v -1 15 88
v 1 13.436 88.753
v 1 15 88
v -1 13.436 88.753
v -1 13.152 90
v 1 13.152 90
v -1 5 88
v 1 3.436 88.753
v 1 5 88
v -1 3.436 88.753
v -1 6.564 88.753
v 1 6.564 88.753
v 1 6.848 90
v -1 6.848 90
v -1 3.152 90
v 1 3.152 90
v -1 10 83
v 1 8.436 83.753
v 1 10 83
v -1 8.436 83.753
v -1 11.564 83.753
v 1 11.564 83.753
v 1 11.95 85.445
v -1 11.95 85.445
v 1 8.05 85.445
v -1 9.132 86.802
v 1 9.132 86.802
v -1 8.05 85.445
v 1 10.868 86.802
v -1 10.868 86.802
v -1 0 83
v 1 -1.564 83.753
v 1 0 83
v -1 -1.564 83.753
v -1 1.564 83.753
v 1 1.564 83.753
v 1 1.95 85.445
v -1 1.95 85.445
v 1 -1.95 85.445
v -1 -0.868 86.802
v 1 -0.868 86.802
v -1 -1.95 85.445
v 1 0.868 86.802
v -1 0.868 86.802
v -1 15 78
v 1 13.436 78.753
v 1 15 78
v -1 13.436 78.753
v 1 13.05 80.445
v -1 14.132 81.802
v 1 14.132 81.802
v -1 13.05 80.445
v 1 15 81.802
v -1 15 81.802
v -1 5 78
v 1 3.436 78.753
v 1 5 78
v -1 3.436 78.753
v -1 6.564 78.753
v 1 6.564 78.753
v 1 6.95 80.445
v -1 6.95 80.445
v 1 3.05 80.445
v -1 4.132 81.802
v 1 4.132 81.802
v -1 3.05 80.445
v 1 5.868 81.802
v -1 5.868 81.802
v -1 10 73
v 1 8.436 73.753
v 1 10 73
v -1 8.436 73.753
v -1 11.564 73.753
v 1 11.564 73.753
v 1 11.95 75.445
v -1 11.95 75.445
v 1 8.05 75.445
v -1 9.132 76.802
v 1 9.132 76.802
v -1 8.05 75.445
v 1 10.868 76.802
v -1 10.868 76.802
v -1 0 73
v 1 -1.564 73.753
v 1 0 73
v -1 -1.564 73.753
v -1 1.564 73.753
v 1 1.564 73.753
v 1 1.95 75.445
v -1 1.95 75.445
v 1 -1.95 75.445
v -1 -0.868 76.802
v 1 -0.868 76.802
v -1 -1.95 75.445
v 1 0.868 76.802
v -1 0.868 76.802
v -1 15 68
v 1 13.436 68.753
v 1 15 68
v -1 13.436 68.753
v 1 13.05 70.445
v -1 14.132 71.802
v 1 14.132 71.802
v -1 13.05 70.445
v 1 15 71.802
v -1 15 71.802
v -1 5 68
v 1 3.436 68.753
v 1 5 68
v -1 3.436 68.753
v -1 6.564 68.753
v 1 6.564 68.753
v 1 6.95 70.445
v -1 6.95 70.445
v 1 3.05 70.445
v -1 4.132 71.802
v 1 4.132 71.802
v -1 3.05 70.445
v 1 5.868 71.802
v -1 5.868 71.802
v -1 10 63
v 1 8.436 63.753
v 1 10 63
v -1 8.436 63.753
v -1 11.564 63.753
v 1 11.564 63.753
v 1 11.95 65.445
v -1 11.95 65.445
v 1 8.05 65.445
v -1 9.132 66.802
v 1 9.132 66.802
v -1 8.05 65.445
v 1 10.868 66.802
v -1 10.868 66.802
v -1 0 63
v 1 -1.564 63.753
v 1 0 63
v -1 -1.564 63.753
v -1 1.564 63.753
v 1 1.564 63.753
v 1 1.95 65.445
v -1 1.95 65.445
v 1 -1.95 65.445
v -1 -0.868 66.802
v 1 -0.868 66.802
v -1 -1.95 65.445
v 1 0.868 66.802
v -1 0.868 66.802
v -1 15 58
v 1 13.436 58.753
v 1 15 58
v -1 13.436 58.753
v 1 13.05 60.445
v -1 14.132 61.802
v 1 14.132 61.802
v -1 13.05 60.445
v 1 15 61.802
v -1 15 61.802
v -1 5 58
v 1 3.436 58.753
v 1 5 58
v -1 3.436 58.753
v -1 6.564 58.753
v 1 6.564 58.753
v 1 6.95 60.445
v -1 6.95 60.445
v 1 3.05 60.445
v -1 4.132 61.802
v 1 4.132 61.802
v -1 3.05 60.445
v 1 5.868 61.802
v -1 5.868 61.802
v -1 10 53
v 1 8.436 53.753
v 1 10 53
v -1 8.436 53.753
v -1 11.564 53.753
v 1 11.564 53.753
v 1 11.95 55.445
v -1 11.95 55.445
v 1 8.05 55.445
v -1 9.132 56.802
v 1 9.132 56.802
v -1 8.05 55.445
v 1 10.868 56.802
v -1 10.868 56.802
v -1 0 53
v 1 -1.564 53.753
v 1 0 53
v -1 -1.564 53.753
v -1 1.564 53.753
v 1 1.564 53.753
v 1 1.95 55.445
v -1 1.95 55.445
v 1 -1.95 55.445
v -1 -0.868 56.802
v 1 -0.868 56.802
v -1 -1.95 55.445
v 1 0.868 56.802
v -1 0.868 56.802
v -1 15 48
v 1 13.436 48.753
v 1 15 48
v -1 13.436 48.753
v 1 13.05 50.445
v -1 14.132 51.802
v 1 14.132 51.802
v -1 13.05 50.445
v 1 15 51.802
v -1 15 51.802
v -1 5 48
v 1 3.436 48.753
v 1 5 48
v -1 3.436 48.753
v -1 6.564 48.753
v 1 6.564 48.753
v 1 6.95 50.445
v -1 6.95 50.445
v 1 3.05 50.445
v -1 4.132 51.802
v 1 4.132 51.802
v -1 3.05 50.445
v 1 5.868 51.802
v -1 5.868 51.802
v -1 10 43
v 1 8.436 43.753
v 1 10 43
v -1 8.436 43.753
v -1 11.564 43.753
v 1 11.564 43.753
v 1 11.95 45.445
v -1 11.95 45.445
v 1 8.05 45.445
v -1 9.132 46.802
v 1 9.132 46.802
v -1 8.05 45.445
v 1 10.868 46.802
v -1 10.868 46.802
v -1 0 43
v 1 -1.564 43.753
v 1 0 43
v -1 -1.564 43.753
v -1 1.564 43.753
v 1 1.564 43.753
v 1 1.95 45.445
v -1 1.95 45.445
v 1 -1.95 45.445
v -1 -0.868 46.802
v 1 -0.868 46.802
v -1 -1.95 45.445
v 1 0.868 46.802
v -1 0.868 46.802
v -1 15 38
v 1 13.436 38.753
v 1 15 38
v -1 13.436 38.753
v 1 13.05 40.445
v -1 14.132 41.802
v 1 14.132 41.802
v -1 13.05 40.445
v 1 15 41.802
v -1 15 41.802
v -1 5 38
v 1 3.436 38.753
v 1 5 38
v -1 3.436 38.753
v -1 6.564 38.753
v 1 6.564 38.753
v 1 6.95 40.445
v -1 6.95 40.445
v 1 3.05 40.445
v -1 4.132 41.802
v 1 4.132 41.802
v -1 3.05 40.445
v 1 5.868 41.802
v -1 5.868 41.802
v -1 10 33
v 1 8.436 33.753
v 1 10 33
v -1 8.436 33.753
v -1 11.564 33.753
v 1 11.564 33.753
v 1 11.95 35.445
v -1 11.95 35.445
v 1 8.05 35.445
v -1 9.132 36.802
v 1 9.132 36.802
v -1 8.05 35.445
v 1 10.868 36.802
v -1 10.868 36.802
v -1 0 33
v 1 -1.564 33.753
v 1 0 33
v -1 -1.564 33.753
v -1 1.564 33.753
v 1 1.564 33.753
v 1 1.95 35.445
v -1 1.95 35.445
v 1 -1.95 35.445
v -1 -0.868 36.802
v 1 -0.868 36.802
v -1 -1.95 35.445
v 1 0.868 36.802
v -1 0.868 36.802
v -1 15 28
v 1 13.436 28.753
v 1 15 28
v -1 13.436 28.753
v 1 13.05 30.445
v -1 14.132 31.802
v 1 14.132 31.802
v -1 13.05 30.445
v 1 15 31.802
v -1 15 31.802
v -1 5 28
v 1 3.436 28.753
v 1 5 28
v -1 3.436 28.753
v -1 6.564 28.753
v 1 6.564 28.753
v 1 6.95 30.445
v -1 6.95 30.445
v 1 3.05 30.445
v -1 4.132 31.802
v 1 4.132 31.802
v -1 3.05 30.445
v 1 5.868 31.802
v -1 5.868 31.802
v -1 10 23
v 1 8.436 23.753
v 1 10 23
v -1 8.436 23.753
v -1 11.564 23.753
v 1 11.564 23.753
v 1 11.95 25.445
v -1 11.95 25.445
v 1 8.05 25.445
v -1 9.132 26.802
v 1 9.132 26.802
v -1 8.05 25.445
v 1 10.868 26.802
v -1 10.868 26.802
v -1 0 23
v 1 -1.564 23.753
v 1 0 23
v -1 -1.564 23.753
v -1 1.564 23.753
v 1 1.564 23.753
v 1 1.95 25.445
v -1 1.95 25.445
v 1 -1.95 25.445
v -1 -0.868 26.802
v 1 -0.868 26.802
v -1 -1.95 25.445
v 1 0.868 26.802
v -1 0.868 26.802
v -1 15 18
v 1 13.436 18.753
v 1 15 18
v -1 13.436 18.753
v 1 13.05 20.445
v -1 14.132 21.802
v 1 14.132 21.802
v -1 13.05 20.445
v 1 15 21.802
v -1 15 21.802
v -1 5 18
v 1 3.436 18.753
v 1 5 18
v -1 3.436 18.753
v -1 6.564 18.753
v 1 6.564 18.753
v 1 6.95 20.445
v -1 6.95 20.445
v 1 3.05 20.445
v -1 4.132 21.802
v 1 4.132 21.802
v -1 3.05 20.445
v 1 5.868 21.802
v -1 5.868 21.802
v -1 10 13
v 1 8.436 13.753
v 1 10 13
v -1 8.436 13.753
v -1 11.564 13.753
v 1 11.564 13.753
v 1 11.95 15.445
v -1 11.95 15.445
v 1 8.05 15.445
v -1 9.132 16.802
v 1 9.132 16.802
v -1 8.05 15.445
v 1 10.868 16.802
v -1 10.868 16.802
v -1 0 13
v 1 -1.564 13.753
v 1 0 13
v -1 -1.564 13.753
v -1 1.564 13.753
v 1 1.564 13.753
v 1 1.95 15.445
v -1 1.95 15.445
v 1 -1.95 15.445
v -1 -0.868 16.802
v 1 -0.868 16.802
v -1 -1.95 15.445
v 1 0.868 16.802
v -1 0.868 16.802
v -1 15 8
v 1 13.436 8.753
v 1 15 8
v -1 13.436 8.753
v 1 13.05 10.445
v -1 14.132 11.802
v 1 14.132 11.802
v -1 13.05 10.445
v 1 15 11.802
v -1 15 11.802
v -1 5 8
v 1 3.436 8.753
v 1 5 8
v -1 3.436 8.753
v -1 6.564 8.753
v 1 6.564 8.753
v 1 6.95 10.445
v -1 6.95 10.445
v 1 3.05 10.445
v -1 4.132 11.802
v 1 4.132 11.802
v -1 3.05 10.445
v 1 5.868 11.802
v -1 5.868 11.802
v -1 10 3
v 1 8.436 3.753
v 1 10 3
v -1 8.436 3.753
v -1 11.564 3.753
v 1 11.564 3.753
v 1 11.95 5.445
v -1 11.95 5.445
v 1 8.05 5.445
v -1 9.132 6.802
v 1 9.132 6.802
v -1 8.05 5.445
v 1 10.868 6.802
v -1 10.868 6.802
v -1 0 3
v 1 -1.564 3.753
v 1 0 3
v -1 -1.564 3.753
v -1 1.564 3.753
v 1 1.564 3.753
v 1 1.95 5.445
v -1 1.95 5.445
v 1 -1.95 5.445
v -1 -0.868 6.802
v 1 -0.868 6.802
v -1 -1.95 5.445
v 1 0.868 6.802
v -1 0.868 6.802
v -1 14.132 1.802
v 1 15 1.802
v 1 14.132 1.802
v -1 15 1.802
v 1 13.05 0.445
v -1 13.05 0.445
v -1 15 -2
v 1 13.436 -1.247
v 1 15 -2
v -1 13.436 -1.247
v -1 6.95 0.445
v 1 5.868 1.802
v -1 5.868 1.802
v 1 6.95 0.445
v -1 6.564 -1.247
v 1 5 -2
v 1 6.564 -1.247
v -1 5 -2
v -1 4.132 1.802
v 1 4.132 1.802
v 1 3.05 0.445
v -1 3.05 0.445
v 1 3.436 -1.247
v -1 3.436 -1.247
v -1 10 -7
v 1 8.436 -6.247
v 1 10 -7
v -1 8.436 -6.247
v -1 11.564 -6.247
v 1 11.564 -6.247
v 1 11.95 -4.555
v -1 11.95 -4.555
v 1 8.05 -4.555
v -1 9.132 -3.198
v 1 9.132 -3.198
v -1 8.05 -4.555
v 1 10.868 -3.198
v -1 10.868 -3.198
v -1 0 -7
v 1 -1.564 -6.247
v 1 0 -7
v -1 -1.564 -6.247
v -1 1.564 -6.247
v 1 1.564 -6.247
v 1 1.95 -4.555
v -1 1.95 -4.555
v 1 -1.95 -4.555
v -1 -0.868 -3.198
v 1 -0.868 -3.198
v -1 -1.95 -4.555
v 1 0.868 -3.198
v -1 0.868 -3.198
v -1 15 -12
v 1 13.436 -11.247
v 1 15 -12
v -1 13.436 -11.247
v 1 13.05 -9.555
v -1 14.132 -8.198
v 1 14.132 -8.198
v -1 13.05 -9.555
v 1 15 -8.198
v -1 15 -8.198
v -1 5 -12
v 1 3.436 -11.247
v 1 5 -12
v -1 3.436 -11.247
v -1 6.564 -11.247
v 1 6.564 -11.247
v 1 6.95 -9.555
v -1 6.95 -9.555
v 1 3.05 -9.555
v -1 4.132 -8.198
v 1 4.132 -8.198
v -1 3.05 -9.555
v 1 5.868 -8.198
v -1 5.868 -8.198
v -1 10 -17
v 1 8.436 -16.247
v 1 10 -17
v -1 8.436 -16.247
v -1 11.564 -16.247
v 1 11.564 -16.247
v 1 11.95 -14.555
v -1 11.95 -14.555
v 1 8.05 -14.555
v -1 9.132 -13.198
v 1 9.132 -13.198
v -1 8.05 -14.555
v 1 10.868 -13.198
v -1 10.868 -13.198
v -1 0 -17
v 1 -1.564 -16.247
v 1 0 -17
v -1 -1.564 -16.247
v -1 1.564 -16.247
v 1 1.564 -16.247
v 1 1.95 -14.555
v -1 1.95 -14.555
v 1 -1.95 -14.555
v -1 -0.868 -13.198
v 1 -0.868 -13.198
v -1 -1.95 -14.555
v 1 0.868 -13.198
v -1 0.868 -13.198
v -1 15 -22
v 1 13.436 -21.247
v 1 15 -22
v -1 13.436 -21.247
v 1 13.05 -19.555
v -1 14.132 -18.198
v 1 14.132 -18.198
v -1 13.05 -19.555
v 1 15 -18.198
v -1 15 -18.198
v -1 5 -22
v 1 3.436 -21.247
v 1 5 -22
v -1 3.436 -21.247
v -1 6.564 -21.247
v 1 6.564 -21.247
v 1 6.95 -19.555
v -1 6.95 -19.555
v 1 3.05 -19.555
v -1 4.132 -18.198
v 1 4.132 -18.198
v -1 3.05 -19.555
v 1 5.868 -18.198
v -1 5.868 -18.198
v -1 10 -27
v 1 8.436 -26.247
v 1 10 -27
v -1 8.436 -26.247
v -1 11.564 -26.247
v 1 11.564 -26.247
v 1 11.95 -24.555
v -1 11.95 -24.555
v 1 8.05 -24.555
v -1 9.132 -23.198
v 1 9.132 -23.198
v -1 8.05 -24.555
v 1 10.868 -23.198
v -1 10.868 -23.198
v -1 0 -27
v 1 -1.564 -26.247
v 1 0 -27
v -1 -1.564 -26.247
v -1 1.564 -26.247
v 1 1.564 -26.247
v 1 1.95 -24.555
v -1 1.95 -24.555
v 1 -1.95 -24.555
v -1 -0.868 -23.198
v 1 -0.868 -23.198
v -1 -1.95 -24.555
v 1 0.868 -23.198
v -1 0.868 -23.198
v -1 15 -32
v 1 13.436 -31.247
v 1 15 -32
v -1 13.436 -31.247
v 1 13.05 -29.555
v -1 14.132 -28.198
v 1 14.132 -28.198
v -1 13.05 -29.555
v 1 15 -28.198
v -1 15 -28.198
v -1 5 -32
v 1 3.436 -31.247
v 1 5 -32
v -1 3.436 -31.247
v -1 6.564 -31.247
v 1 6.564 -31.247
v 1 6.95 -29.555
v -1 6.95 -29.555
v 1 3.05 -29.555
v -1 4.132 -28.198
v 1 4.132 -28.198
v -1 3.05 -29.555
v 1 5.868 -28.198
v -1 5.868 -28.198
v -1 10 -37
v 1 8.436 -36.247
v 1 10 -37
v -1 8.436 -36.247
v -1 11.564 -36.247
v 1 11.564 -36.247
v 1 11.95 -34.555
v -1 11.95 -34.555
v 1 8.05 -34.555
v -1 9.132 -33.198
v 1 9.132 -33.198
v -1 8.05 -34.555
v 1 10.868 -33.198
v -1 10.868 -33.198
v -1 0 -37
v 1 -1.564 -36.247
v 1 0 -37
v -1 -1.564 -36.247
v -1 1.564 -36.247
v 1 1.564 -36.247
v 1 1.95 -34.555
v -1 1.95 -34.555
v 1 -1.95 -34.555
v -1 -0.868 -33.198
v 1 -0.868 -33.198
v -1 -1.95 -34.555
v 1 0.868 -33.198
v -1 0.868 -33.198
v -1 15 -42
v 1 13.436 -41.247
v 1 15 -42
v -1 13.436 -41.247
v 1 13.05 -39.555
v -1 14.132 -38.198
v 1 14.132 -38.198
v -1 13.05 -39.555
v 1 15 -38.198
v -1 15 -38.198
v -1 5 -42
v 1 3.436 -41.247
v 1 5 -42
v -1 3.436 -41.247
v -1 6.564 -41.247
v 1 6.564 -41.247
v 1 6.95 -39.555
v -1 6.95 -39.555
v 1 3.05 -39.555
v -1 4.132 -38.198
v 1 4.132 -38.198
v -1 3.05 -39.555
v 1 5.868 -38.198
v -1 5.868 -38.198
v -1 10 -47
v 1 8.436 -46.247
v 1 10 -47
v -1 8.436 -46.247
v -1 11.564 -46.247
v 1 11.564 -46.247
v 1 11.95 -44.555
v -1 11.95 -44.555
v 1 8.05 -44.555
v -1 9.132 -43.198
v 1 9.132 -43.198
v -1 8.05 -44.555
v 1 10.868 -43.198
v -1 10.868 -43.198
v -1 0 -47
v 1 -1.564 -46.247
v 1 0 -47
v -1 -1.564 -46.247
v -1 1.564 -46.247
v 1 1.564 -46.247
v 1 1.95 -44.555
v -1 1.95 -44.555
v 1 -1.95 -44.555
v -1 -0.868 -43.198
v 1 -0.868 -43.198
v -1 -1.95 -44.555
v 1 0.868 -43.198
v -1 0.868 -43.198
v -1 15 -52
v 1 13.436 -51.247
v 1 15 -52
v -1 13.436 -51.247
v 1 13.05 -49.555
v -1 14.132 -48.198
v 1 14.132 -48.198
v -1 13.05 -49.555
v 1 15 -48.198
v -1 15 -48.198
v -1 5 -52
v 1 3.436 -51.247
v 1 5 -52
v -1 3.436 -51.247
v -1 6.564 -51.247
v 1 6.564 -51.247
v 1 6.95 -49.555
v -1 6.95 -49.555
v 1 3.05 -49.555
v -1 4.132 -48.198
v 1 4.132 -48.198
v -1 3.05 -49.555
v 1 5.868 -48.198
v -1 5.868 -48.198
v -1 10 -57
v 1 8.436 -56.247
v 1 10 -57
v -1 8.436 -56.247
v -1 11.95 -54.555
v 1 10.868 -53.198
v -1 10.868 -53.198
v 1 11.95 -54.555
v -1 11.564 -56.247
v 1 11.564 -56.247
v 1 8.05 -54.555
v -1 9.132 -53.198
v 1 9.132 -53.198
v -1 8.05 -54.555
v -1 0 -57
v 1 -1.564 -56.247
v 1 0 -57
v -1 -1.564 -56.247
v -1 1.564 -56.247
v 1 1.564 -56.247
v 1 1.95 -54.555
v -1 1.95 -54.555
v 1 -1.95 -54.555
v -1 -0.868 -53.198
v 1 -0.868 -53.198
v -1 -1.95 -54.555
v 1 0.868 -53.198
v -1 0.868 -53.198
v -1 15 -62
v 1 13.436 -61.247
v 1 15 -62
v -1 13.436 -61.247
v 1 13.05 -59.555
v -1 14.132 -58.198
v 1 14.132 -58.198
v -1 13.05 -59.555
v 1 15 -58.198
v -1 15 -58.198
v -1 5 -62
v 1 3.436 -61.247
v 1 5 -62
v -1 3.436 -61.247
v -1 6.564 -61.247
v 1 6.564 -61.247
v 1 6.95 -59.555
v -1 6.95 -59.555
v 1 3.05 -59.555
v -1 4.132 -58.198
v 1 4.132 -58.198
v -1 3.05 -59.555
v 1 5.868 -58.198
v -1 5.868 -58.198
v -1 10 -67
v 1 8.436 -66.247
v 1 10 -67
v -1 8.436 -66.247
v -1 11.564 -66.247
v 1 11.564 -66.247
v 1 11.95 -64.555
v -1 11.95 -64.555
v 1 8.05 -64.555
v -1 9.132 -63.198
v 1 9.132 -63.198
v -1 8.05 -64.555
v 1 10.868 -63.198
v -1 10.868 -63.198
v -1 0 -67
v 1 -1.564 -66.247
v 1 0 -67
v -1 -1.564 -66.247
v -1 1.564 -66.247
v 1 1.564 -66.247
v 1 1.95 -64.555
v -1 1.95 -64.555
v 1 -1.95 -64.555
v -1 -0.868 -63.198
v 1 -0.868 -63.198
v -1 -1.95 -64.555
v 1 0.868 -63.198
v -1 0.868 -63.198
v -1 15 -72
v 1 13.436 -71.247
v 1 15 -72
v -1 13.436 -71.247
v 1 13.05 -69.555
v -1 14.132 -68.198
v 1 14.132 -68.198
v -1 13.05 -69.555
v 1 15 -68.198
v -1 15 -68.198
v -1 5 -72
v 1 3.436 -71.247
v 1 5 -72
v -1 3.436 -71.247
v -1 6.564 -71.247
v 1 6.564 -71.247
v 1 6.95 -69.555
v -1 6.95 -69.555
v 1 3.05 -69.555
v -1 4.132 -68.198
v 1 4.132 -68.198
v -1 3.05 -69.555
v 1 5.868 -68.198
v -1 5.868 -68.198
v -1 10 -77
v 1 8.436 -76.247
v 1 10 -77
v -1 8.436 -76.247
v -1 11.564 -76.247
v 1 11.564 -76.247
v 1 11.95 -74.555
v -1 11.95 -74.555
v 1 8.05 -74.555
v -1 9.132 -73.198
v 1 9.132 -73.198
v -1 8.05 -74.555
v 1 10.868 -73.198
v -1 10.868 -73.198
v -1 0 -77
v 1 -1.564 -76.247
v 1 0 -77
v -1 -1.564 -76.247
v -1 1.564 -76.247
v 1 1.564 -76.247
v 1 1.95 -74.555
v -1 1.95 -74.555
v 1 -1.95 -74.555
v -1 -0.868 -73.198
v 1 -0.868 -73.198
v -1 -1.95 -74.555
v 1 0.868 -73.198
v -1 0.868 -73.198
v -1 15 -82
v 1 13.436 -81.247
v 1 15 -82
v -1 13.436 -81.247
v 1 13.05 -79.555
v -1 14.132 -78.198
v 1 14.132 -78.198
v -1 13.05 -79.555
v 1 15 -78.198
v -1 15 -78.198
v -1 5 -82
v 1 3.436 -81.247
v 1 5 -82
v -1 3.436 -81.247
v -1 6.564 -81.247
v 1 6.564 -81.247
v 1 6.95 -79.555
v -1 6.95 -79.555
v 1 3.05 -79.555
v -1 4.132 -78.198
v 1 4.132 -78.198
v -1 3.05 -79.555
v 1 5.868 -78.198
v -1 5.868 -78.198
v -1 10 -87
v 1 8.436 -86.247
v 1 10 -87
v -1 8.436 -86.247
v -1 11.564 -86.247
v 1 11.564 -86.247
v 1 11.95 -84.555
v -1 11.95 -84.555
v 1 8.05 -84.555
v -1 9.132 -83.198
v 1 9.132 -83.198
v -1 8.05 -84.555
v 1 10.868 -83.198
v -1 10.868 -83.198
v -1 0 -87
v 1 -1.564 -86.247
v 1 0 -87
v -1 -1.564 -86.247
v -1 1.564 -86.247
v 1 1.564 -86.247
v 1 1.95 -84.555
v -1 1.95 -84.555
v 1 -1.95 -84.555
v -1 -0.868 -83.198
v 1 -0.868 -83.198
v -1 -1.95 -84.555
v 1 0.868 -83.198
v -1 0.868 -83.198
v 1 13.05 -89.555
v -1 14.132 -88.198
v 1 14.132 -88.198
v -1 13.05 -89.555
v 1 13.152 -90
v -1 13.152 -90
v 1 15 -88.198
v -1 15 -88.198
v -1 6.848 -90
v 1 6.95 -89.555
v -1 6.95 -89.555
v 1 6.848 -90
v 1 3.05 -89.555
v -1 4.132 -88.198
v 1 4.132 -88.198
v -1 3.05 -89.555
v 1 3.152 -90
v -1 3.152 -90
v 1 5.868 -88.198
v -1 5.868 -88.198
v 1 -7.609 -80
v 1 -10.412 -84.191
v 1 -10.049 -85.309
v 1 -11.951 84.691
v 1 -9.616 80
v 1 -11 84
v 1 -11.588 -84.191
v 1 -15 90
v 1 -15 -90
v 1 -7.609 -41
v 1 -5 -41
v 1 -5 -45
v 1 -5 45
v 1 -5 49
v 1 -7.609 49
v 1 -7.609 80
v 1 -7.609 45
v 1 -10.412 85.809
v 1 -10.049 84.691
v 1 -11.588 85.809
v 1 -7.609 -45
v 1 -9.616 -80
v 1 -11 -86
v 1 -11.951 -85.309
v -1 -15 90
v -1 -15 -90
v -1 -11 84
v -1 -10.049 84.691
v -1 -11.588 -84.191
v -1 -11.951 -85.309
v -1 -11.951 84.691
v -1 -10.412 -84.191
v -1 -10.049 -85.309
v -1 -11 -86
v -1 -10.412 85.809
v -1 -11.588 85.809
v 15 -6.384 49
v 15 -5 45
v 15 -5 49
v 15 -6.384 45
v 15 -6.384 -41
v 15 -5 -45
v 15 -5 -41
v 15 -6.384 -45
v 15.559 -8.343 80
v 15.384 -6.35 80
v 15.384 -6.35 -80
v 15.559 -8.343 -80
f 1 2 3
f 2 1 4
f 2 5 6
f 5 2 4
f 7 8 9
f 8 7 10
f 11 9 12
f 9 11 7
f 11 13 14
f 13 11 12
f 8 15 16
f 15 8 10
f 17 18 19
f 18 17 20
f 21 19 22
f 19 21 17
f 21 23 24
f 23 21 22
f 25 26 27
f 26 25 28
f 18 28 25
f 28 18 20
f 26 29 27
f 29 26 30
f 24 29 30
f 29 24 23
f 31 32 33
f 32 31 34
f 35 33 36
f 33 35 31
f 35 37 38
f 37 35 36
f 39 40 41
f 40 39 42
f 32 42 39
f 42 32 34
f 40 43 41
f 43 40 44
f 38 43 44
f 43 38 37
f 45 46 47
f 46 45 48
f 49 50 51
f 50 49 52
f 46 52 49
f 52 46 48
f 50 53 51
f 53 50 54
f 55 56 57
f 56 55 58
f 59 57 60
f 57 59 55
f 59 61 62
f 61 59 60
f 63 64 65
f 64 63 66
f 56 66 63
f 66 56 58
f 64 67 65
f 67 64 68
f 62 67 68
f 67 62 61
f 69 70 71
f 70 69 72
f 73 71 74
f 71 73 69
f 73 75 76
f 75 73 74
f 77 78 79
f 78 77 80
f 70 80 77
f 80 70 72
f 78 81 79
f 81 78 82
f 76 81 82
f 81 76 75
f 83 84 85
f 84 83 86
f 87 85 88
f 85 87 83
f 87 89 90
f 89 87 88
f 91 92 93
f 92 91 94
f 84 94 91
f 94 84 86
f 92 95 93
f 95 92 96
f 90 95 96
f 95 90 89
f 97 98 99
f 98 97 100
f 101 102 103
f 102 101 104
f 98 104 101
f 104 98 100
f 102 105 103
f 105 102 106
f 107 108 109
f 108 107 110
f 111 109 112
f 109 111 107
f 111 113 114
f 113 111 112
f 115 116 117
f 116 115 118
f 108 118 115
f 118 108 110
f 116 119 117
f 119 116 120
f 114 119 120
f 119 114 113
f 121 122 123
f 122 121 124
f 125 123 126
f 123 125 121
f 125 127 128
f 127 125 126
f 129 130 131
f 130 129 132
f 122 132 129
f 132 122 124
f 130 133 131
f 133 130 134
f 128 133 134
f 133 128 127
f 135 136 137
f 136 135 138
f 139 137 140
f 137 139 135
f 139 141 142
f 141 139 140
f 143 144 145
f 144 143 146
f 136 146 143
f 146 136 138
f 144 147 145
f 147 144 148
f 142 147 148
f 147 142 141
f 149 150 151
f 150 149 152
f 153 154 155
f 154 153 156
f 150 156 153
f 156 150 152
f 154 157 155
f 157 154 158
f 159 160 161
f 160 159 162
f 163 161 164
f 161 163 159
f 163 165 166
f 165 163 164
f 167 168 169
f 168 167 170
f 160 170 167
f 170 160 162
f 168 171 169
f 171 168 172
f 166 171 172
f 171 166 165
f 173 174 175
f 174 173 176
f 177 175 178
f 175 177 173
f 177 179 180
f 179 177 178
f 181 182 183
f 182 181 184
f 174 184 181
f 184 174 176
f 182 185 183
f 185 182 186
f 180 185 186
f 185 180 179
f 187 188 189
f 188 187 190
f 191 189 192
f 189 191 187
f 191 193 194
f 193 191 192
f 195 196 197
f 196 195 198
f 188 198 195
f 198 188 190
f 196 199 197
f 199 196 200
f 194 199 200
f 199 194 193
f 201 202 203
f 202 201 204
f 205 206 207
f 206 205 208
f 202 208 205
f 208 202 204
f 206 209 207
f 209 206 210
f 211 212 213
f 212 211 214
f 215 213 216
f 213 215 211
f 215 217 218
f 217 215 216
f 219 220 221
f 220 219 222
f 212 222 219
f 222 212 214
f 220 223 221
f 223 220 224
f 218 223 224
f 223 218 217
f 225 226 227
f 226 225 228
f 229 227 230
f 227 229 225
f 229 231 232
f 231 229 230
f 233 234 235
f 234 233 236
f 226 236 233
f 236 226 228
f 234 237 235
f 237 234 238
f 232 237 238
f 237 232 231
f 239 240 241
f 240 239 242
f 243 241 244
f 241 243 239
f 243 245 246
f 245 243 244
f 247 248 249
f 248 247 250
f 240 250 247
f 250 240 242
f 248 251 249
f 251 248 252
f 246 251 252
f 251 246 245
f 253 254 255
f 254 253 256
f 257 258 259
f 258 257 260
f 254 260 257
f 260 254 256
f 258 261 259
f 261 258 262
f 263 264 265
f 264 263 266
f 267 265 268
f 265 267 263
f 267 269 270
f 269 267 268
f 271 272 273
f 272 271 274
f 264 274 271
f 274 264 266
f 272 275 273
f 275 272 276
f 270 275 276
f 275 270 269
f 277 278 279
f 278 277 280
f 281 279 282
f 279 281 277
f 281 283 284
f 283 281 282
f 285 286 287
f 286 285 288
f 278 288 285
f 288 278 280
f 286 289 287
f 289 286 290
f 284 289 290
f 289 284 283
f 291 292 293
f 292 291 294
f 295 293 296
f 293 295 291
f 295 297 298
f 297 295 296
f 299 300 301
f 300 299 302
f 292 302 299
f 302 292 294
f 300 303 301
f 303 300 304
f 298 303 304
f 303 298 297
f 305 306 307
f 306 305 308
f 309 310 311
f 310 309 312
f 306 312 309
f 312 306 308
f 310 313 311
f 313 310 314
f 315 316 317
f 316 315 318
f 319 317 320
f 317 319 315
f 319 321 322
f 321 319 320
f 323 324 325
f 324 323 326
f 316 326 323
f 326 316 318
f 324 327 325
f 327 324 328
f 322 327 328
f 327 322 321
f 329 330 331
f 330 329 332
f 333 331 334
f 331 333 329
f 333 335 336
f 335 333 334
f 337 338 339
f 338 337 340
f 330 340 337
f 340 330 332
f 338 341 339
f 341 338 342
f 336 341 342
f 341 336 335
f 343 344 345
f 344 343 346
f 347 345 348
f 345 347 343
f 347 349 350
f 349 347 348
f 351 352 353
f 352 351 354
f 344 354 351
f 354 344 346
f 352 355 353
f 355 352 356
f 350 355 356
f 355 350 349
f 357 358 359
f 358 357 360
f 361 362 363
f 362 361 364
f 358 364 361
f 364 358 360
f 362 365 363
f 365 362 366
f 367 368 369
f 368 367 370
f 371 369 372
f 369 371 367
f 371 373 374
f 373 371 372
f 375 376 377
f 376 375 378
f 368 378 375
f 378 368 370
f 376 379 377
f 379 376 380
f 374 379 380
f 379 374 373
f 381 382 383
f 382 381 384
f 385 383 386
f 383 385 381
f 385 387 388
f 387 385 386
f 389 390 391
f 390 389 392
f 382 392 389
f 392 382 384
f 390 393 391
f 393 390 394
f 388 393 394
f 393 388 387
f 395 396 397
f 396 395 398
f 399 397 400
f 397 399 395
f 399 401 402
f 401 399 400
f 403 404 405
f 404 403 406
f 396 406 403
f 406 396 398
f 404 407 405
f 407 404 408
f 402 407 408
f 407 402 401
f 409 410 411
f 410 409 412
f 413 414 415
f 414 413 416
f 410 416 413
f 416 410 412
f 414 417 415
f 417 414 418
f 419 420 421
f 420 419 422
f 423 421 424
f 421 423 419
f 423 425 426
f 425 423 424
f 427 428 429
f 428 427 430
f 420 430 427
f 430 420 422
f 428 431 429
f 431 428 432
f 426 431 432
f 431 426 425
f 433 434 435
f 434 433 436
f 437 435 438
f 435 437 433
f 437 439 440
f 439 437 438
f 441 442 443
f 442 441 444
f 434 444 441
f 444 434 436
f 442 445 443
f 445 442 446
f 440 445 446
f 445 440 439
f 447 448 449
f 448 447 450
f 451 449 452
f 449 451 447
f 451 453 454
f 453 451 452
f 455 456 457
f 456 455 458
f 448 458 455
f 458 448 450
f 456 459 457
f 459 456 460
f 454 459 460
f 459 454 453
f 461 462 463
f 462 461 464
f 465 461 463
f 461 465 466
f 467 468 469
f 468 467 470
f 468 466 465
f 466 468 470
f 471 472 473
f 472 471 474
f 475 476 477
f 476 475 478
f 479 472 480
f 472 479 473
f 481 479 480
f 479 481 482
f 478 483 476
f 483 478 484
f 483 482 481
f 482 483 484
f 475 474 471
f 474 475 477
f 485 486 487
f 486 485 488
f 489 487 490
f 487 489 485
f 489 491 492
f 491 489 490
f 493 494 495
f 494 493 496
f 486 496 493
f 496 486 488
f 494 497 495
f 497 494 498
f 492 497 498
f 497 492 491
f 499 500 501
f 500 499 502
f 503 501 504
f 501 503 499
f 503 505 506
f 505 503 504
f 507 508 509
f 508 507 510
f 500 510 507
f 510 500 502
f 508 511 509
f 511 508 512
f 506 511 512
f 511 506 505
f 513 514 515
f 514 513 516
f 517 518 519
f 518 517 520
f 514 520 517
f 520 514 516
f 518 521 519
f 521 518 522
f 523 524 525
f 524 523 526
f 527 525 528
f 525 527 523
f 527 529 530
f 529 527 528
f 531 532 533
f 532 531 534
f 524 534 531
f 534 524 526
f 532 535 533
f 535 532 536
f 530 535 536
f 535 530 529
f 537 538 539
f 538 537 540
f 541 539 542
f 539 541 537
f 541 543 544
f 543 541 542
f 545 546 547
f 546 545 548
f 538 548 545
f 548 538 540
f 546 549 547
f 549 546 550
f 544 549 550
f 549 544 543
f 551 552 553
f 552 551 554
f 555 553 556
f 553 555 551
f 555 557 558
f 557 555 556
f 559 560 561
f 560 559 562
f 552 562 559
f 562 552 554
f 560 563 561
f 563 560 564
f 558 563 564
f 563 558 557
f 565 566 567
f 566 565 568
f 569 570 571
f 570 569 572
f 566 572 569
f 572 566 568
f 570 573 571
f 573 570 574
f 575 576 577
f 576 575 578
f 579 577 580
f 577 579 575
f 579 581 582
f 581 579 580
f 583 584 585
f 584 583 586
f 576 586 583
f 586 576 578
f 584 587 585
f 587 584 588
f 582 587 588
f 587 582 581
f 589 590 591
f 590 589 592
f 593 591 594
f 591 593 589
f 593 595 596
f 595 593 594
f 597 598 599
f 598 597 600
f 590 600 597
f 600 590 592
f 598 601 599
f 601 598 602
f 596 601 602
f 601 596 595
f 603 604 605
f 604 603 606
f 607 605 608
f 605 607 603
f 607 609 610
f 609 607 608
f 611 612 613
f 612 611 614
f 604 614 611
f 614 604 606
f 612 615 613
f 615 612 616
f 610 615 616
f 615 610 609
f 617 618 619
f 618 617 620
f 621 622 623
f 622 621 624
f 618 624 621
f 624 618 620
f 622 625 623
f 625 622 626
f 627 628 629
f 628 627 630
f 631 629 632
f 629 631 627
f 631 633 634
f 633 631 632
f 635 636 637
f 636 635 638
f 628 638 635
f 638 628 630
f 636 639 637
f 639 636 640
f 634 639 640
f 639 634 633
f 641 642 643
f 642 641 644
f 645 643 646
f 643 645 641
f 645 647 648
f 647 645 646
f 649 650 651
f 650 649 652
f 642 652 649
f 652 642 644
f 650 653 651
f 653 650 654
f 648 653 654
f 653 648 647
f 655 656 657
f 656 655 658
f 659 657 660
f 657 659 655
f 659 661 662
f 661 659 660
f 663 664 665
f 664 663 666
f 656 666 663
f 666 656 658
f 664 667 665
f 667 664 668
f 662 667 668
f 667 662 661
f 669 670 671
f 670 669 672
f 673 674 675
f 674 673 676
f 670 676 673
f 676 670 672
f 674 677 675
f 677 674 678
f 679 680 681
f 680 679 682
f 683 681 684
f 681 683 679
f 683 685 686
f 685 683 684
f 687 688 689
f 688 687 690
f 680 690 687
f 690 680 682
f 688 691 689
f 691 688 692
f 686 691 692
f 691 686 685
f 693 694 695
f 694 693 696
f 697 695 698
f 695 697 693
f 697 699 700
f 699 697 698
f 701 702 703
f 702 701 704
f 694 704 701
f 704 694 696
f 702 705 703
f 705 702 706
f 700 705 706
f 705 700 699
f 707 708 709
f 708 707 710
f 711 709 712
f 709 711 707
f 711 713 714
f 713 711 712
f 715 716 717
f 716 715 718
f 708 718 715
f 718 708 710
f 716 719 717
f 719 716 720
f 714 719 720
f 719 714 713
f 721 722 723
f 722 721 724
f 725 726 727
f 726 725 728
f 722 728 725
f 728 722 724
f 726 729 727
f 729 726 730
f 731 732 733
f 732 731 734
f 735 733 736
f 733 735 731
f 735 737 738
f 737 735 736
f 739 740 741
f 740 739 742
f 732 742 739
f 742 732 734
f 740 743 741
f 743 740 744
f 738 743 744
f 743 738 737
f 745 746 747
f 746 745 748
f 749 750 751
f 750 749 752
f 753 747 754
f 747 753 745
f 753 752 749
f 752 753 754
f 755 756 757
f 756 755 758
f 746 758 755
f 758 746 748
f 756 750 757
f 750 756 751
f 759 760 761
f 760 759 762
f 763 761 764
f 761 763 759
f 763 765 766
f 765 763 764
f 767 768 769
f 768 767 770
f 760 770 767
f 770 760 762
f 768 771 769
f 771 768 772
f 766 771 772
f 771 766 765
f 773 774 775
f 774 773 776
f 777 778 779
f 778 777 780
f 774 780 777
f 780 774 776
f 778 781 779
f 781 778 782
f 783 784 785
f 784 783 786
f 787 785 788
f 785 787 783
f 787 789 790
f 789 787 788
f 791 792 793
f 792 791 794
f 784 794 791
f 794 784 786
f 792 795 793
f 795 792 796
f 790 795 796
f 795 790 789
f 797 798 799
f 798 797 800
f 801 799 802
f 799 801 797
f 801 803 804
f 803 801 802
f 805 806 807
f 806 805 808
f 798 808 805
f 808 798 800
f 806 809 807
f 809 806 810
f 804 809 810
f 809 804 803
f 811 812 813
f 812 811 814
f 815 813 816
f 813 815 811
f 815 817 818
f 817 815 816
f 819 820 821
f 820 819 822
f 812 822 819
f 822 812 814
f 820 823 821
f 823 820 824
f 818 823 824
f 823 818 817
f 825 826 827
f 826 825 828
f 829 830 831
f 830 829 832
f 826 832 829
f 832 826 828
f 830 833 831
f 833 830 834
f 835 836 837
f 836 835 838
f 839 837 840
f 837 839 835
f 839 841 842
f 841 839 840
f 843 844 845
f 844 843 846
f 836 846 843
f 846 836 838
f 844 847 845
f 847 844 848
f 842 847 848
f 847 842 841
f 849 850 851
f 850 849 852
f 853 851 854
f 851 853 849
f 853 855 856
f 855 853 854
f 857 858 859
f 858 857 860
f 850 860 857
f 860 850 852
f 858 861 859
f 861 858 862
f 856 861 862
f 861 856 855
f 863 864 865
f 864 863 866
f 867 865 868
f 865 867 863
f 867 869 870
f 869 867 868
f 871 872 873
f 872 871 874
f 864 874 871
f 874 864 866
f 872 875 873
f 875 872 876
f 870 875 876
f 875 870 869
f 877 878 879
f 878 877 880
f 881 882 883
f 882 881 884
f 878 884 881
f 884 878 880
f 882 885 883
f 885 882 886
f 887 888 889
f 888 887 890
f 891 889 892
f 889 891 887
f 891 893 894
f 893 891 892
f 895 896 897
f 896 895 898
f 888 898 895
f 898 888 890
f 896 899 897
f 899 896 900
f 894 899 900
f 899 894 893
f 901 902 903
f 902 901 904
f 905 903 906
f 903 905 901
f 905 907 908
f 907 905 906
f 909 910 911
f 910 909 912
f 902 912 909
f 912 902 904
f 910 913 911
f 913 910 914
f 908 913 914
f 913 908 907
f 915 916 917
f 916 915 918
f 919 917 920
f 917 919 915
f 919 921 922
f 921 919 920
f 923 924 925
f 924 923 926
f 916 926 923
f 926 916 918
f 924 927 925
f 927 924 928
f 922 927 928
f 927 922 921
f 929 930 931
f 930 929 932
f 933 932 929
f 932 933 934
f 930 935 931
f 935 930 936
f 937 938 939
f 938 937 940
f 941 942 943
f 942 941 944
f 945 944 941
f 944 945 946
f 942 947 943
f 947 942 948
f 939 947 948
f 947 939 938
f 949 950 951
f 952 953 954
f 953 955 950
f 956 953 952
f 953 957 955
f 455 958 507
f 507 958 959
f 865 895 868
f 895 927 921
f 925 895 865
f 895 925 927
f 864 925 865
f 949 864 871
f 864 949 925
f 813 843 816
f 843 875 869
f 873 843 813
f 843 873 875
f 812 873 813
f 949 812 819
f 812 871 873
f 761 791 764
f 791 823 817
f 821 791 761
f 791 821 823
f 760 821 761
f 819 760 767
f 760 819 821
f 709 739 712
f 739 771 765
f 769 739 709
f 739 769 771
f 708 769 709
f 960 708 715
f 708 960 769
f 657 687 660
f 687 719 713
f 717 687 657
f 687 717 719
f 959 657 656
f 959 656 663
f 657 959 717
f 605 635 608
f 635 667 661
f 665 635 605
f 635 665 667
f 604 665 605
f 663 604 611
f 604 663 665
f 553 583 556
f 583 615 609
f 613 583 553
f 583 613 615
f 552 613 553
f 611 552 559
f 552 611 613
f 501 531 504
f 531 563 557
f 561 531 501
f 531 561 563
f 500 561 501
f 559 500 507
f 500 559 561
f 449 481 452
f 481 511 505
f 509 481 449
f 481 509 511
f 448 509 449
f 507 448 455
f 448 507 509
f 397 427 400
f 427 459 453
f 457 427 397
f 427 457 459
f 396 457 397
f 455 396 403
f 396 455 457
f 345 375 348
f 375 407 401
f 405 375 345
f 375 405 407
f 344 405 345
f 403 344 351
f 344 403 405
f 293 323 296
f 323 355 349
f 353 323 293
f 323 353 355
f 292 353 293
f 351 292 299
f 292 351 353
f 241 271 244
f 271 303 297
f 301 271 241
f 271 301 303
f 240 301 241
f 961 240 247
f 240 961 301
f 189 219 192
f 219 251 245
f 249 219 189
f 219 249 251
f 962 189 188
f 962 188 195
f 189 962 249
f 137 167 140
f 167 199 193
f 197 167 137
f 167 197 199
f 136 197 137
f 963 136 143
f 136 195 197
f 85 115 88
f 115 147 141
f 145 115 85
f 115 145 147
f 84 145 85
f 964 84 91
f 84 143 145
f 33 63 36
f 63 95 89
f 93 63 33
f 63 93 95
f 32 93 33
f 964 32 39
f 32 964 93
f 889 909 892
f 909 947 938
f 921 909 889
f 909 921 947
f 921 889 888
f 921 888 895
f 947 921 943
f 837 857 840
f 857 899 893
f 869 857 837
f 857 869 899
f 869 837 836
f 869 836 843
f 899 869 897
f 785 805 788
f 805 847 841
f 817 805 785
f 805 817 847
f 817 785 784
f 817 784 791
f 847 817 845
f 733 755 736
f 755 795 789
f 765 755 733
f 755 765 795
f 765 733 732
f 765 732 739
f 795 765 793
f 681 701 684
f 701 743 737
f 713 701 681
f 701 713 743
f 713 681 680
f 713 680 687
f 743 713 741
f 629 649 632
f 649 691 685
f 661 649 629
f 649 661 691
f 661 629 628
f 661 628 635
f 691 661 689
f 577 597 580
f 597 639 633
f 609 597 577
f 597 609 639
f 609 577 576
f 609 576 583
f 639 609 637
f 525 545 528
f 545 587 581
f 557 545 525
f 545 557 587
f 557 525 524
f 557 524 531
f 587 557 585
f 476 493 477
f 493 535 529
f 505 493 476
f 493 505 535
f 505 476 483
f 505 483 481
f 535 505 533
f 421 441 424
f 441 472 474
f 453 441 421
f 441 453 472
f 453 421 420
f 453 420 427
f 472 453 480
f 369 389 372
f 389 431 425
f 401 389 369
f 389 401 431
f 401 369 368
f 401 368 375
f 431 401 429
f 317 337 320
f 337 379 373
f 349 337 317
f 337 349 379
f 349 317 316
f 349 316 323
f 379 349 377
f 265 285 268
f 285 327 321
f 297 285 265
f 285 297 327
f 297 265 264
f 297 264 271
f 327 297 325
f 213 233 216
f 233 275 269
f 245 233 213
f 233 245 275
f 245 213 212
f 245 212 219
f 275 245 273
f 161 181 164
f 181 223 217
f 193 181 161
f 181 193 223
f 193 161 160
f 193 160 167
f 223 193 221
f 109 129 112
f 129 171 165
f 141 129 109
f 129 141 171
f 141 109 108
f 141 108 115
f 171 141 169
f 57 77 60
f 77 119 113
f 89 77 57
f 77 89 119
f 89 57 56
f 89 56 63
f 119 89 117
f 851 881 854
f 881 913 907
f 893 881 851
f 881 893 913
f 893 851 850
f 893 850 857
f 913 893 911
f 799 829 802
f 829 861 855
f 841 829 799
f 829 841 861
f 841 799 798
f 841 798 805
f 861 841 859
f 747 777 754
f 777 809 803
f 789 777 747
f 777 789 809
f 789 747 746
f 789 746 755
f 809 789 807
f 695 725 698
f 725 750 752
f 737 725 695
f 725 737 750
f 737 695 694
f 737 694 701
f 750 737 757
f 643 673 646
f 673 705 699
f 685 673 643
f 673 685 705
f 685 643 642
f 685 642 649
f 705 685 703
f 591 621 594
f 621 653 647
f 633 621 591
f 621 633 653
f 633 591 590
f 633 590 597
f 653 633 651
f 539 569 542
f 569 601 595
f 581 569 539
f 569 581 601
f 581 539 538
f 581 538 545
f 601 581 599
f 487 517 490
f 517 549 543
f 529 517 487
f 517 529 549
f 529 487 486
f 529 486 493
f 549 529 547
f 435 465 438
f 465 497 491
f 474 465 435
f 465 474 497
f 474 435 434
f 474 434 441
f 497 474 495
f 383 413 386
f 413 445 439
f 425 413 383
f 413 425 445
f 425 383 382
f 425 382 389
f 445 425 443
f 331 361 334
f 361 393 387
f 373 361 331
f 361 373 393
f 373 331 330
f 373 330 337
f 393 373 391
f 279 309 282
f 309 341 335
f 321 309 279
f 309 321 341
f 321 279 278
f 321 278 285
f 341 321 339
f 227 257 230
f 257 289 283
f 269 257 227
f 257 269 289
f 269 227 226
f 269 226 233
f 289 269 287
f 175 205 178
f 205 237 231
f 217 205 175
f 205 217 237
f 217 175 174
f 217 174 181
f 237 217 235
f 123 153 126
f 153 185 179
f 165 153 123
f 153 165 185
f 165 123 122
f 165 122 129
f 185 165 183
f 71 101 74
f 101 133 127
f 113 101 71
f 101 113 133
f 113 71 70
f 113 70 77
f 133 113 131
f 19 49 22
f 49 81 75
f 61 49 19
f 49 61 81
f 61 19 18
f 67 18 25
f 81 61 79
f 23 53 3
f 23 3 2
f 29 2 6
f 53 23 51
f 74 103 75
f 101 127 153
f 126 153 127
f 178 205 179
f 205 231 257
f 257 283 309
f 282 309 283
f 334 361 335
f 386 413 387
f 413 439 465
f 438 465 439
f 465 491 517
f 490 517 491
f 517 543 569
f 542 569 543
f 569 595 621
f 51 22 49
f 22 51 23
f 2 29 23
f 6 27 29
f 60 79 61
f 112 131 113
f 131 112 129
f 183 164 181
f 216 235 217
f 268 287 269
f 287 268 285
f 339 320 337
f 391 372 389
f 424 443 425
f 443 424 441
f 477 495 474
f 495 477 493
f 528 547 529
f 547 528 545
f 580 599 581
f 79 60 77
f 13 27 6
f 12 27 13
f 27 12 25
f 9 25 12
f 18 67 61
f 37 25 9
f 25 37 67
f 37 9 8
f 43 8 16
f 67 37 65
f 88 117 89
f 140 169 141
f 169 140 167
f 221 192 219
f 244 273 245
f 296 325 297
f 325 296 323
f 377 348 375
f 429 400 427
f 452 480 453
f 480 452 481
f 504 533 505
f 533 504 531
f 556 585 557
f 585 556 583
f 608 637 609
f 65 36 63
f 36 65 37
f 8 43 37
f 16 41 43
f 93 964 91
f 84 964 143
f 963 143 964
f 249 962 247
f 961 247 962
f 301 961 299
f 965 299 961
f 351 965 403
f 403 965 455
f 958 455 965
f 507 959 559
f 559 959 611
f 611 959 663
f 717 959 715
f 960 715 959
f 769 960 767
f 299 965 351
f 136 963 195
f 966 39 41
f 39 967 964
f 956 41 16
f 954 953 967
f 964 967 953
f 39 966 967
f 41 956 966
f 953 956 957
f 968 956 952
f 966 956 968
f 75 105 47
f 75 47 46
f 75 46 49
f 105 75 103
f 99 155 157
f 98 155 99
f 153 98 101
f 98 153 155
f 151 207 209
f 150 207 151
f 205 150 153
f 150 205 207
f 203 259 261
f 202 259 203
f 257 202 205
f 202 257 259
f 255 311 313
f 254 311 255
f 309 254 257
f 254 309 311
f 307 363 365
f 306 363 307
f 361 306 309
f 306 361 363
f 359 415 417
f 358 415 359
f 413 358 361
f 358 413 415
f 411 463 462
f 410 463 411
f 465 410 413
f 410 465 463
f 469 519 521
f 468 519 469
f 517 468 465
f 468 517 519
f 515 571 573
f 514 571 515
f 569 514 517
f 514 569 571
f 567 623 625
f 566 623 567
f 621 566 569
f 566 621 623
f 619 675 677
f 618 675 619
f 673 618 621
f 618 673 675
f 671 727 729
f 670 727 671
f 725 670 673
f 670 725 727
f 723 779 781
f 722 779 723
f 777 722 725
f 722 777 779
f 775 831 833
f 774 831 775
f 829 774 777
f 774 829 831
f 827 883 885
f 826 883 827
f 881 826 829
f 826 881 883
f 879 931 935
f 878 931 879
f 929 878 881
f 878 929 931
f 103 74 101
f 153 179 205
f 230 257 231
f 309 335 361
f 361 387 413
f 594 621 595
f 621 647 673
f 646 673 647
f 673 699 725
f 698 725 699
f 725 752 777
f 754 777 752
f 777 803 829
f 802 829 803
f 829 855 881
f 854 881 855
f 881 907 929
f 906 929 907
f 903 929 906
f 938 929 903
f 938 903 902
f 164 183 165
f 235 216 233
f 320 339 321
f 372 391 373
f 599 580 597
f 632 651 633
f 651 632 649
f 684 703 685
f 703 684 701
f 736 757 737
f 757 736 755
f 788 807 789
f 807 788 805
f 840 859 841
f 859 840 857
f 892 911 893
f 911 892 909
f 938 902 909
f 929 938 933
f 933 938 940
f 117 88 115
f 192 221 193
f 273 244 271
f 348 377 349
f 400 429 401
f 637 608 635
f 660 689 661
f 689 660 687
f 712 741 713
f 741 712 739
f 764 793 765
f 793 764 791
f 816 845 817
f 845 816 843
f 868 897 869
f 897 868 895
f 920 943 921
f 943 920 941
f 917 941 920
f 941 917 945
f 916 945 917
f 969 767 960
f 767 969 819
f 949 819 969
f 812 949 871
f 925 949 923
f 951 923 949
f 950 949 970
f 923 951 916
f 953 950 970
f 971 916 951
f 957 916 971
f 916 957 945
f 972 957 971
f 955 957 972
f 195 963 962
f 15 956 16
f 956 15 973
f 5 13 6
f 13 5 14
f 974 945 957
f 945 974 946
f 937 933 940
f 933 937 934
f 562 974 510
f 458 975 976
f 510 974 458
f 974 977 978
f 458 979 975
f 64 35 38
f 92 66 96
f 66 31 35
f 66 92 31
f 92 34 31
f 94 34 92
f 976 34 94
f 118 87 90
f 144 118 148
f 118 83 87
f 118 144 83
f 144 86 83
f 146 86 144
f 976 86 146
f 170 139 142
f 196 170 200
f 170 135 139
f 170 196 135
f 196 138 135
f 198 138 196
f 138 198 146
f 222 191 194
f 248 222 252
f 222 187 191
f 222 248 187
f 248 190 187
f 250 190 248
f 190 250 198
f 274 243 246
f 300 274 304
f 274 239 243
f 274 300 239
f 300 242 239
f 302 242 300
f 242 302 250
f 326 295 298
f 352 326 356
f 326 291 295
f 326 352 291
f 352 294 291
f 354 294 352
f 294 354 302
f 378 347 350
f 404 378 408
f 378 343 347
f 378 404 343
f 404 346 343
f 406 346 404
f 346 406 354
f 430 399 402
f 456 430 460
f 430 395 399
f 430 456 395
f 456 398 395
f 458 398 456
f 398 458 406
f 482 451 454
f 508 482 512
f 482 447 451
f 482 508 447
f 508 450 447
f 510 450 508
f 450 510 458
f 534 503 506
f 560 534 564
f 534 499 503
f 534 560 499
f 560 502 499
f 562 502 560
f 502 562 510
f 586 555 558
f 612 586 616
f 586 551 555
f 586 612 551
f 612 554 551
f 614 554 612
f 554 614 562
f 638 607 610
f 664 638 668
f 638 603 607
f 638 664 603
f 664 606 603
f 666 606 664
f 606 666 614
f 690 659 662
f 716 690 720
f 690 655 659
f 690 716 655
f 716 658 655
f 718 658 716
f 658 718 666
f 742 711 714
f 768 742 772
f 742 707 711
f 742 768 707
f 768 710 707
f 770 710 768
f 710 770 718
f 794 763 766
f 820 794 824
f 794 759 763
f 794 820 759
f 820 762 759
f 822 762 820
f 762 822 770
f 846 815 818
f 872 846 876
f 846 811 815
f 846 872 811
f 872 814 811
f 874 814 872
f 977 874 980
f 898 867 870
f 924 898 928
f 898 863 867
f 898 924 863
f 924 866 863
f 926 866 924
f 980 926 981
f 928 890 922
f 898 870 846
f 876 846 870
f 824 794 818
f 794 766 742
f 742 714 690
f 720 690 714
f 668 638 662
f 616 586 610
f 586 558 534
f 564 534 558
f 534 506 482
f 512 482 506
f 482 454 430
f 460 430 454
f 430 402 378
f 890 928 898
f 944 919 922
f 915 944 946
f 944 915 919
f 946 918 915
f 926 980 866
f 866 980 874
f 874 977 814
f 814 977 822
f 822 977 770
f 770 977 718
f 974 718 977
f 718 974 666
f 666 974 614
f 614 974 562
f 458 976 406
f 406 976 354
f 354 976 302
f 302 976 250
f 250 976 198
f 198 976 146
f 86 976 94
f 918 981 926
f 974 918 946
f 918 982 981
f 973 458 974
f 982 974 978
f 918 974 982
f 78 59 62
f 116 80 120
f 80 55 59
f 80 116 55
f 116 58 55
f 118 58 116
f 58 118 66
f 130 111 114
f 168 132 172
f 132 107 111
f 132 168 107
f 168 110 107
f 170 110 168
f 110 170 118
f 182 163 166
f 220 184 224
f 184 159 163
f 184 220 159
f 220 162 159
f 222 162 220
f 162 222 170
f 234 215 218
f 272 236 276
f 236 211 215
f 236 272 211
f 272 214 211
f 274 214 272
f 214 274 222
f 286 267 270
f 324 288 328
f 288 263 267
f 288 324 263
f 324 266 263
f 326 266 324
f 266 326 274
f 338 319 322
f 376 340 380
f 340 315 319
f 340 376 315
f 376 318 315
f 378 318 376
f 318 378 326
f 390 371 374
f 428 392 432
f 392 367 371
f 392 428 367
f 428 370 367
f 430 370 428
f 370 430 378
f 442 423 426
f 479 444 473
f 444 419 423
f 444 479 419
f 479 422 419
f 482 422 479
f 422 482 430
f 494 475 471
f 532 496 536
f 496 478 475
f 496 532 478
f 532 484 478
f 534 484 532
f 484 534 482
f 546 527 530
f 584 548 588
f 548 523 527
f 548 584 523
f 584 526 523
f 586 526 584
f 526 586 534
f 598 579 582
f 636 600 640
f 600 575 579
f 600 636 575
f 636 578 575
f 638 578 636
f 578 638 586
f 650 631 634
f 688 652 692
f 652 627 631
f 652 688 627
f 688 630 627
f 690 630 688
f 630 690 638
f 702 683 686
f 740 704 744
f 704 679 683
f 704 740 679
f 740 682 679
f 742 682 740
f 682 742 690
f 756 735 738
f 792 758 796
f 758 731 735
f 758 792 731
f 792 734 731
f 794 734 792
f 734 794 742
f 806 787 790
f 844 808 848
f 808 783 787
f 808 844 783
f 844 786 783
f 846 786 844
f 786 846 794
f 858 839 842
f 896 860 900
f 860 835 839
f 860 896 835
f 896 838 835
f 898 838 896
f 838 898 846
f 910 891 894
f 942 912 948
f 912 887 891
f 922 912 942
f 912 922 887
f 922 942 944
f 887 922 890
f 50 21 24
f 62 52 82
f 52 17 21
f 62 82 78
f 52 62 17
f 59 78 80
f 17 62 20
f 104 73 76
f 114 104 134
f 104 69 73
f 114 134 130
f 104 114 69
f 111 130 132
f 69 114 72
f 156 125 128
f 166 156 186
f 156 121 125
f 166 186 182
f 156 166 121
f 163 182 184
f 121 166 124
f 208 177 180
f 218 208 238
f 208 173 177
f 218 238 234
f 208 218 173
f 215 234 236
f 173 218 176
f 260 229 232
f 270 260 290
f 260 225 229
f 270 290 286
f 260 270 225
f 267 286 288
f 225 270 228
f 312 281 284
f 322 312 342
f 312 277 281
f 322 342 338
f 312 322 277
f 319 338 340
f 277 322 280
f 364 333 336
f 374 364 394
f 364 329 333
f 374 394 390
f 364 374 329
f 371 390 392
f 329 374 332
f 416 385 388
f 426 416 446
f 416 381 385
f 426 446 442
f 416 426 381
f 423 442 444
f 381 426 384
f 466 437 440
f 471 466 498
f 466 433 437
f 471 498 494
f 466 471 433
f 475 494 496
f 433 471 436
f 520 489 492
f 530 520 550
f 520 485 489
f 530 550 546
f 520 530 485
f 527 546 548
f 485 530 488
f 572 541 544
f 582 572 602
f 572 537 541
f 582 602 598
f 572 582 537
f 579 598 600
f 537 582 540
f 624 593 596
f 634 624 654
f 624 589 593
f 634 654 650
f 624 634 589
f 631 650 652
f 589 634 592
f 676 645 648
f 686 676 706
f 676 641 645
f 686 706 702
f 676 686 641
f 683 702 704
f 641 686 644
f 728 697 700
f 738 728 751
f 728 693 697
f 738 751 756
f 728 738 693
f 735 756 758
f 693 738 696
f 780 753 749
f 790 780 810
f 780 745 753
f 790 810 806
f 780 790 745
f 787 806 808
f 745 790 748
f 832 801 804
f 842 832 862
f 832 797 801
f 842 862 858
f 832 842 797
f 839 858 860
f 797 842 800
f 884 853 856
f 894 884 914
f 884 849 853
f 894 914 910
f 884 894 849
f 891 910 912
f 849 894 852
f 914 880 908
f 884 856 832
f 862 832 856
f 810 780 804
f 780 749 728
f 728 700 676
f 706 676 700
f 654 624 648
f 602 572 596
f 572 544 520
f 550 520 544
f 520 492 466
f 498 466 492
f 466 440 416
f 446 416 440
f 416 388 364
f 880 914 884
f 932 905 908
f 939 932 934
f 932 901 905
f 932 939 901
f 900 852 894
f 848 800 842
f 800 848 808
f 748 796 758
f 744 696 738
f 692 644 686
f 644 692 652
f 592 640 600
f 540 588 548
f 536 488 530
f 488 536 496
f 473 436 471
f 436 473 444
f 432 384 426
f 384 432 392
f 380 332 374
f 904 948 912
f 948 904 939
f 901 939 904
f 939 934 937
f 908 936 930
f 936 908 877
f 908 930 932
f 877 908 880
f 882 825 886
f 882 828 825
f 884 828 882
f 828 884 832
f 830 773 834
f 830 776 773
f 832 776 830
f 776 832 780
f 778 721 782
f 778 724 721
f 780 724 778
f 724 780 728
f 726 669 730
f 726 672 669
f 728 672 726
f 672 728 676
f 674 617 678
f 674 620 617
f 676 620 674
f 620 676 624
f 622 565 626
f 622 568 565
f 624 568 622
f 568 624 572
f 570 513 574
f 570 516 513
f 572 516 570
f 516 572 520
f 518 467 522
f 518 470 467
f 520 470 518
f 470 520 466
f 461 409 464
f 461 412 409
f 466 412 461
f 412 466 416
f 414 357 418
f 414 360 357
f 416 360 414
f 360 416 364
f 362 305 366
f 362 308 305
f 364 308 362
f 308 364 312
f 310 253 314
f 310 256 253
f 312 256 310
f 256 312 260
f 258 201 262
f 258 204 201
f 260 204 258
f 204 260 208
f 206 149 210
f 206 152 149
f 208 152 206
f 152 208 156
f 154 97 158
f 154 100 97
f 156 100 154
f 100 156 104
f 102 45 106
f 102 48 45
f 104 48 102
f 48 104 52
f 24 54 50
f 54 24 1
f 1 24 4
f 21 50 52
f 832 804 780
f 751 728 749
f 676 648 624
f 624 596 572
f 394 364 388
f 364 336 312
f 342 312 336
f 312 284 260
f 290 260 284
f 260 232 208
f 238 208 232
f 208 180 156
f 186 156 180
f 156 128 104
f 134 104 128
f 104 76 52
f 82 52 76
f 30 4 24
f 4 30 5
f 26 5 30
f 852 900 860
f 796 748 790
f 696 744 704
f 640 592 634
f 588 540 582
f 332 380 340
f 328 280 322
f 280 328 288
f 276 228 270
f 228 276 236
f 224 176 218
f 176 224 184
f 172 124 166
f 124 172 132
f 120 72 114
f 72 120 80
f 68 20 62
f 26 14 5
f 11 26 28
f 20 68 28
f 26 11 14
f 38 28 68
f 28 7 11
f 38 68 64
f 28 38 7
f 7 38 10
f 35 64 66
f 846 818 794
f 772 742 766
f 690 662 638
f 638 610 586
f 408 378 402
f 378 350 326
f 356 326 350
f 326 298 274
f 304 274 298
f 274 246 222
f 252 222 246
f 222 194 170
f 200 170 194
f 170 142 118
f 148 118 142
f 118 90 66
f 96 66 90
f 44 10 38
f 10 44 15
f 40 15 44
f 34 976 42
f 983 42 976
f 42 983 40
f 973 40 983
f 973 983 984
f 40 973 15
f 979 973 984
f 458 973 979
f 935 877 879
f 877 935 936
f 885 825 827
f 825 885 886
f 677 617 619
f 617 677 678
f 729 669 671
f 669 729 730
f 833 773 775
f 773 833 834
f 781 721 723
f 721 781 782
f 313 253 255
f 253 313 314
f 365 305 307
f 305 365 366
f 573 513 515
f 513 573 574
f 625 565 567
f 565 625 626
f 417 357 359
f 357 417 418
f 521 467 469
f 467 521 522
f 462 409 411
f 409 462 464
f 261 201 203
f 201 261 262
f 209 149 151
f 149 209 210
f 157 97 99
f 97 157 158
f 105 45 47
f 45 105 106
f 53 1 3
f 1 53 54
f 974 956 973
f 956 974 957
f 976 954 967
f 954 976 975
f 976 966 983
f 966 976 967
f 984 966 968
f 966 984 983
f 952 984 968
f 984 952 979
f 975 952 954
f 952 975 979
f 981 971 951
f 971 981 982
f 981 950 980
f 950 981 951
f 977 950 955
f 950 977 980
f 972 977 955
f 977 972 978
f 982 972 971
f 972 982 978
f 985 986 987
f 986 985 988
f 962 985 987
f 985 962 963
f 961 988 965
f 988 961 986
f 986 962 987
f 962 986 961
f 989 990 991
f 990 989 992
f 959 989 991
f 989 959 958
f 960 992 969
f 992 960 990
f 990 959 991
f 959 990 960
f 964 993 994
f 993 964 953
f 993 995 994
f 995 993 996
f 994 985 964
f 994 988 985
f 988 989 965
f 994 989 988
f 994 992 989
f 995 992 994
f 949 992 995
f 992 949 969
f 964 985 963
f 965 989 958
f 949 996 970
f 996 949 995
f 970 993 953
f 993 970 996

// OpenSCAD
length = 180;
width = 2;
overhang = 15;
height = 30;

difference() {
  cube([width, height, length], center = true);
  translate([0, (-height/2+4), (length/2) - 5]) rotate([0,90,0]) cylinder(d=2, h=6, center = true);
  translate([0, (-height/2+4), (-length/2) + 5]) rotate([0,90,0]) cylinder(d=2, h=6, center = true);

  for (i = [0:(length / 10)]) {
     translate([0, (height/2), ((length/2)-(i*10))]) rotate([0,90,0]) cylinder(d=4, h=6, center = true);
     translate([0, (height/2)-10, ((length/2)-(i*10))]) rotate([0,90,0]) cylinder(d=4, h=6, center = true);
     translate([0, (height/2)-5, (((length/2)-5)-(i*10))]) rotate([0,90,0]) cylinder(d=4, h=6, center = true);
     translate([0, (height/2)-15, (((length/2)-5)-(i*10))]) rotate([0,90,0]) cylinder(d=4, h=6, center = true);
  }

} 


translate([0, -8, length / 4]) rotate([0,0,0]) cube([overhang, width+1, 4]);
translate([0, -8, -length / 4]) rotate([0,0,0]) cube([overhang, width+1, 4]);
translate([8, -8, 0]) rotate([0,0,5]) cube([overhang, width, length - 20], center = true);
